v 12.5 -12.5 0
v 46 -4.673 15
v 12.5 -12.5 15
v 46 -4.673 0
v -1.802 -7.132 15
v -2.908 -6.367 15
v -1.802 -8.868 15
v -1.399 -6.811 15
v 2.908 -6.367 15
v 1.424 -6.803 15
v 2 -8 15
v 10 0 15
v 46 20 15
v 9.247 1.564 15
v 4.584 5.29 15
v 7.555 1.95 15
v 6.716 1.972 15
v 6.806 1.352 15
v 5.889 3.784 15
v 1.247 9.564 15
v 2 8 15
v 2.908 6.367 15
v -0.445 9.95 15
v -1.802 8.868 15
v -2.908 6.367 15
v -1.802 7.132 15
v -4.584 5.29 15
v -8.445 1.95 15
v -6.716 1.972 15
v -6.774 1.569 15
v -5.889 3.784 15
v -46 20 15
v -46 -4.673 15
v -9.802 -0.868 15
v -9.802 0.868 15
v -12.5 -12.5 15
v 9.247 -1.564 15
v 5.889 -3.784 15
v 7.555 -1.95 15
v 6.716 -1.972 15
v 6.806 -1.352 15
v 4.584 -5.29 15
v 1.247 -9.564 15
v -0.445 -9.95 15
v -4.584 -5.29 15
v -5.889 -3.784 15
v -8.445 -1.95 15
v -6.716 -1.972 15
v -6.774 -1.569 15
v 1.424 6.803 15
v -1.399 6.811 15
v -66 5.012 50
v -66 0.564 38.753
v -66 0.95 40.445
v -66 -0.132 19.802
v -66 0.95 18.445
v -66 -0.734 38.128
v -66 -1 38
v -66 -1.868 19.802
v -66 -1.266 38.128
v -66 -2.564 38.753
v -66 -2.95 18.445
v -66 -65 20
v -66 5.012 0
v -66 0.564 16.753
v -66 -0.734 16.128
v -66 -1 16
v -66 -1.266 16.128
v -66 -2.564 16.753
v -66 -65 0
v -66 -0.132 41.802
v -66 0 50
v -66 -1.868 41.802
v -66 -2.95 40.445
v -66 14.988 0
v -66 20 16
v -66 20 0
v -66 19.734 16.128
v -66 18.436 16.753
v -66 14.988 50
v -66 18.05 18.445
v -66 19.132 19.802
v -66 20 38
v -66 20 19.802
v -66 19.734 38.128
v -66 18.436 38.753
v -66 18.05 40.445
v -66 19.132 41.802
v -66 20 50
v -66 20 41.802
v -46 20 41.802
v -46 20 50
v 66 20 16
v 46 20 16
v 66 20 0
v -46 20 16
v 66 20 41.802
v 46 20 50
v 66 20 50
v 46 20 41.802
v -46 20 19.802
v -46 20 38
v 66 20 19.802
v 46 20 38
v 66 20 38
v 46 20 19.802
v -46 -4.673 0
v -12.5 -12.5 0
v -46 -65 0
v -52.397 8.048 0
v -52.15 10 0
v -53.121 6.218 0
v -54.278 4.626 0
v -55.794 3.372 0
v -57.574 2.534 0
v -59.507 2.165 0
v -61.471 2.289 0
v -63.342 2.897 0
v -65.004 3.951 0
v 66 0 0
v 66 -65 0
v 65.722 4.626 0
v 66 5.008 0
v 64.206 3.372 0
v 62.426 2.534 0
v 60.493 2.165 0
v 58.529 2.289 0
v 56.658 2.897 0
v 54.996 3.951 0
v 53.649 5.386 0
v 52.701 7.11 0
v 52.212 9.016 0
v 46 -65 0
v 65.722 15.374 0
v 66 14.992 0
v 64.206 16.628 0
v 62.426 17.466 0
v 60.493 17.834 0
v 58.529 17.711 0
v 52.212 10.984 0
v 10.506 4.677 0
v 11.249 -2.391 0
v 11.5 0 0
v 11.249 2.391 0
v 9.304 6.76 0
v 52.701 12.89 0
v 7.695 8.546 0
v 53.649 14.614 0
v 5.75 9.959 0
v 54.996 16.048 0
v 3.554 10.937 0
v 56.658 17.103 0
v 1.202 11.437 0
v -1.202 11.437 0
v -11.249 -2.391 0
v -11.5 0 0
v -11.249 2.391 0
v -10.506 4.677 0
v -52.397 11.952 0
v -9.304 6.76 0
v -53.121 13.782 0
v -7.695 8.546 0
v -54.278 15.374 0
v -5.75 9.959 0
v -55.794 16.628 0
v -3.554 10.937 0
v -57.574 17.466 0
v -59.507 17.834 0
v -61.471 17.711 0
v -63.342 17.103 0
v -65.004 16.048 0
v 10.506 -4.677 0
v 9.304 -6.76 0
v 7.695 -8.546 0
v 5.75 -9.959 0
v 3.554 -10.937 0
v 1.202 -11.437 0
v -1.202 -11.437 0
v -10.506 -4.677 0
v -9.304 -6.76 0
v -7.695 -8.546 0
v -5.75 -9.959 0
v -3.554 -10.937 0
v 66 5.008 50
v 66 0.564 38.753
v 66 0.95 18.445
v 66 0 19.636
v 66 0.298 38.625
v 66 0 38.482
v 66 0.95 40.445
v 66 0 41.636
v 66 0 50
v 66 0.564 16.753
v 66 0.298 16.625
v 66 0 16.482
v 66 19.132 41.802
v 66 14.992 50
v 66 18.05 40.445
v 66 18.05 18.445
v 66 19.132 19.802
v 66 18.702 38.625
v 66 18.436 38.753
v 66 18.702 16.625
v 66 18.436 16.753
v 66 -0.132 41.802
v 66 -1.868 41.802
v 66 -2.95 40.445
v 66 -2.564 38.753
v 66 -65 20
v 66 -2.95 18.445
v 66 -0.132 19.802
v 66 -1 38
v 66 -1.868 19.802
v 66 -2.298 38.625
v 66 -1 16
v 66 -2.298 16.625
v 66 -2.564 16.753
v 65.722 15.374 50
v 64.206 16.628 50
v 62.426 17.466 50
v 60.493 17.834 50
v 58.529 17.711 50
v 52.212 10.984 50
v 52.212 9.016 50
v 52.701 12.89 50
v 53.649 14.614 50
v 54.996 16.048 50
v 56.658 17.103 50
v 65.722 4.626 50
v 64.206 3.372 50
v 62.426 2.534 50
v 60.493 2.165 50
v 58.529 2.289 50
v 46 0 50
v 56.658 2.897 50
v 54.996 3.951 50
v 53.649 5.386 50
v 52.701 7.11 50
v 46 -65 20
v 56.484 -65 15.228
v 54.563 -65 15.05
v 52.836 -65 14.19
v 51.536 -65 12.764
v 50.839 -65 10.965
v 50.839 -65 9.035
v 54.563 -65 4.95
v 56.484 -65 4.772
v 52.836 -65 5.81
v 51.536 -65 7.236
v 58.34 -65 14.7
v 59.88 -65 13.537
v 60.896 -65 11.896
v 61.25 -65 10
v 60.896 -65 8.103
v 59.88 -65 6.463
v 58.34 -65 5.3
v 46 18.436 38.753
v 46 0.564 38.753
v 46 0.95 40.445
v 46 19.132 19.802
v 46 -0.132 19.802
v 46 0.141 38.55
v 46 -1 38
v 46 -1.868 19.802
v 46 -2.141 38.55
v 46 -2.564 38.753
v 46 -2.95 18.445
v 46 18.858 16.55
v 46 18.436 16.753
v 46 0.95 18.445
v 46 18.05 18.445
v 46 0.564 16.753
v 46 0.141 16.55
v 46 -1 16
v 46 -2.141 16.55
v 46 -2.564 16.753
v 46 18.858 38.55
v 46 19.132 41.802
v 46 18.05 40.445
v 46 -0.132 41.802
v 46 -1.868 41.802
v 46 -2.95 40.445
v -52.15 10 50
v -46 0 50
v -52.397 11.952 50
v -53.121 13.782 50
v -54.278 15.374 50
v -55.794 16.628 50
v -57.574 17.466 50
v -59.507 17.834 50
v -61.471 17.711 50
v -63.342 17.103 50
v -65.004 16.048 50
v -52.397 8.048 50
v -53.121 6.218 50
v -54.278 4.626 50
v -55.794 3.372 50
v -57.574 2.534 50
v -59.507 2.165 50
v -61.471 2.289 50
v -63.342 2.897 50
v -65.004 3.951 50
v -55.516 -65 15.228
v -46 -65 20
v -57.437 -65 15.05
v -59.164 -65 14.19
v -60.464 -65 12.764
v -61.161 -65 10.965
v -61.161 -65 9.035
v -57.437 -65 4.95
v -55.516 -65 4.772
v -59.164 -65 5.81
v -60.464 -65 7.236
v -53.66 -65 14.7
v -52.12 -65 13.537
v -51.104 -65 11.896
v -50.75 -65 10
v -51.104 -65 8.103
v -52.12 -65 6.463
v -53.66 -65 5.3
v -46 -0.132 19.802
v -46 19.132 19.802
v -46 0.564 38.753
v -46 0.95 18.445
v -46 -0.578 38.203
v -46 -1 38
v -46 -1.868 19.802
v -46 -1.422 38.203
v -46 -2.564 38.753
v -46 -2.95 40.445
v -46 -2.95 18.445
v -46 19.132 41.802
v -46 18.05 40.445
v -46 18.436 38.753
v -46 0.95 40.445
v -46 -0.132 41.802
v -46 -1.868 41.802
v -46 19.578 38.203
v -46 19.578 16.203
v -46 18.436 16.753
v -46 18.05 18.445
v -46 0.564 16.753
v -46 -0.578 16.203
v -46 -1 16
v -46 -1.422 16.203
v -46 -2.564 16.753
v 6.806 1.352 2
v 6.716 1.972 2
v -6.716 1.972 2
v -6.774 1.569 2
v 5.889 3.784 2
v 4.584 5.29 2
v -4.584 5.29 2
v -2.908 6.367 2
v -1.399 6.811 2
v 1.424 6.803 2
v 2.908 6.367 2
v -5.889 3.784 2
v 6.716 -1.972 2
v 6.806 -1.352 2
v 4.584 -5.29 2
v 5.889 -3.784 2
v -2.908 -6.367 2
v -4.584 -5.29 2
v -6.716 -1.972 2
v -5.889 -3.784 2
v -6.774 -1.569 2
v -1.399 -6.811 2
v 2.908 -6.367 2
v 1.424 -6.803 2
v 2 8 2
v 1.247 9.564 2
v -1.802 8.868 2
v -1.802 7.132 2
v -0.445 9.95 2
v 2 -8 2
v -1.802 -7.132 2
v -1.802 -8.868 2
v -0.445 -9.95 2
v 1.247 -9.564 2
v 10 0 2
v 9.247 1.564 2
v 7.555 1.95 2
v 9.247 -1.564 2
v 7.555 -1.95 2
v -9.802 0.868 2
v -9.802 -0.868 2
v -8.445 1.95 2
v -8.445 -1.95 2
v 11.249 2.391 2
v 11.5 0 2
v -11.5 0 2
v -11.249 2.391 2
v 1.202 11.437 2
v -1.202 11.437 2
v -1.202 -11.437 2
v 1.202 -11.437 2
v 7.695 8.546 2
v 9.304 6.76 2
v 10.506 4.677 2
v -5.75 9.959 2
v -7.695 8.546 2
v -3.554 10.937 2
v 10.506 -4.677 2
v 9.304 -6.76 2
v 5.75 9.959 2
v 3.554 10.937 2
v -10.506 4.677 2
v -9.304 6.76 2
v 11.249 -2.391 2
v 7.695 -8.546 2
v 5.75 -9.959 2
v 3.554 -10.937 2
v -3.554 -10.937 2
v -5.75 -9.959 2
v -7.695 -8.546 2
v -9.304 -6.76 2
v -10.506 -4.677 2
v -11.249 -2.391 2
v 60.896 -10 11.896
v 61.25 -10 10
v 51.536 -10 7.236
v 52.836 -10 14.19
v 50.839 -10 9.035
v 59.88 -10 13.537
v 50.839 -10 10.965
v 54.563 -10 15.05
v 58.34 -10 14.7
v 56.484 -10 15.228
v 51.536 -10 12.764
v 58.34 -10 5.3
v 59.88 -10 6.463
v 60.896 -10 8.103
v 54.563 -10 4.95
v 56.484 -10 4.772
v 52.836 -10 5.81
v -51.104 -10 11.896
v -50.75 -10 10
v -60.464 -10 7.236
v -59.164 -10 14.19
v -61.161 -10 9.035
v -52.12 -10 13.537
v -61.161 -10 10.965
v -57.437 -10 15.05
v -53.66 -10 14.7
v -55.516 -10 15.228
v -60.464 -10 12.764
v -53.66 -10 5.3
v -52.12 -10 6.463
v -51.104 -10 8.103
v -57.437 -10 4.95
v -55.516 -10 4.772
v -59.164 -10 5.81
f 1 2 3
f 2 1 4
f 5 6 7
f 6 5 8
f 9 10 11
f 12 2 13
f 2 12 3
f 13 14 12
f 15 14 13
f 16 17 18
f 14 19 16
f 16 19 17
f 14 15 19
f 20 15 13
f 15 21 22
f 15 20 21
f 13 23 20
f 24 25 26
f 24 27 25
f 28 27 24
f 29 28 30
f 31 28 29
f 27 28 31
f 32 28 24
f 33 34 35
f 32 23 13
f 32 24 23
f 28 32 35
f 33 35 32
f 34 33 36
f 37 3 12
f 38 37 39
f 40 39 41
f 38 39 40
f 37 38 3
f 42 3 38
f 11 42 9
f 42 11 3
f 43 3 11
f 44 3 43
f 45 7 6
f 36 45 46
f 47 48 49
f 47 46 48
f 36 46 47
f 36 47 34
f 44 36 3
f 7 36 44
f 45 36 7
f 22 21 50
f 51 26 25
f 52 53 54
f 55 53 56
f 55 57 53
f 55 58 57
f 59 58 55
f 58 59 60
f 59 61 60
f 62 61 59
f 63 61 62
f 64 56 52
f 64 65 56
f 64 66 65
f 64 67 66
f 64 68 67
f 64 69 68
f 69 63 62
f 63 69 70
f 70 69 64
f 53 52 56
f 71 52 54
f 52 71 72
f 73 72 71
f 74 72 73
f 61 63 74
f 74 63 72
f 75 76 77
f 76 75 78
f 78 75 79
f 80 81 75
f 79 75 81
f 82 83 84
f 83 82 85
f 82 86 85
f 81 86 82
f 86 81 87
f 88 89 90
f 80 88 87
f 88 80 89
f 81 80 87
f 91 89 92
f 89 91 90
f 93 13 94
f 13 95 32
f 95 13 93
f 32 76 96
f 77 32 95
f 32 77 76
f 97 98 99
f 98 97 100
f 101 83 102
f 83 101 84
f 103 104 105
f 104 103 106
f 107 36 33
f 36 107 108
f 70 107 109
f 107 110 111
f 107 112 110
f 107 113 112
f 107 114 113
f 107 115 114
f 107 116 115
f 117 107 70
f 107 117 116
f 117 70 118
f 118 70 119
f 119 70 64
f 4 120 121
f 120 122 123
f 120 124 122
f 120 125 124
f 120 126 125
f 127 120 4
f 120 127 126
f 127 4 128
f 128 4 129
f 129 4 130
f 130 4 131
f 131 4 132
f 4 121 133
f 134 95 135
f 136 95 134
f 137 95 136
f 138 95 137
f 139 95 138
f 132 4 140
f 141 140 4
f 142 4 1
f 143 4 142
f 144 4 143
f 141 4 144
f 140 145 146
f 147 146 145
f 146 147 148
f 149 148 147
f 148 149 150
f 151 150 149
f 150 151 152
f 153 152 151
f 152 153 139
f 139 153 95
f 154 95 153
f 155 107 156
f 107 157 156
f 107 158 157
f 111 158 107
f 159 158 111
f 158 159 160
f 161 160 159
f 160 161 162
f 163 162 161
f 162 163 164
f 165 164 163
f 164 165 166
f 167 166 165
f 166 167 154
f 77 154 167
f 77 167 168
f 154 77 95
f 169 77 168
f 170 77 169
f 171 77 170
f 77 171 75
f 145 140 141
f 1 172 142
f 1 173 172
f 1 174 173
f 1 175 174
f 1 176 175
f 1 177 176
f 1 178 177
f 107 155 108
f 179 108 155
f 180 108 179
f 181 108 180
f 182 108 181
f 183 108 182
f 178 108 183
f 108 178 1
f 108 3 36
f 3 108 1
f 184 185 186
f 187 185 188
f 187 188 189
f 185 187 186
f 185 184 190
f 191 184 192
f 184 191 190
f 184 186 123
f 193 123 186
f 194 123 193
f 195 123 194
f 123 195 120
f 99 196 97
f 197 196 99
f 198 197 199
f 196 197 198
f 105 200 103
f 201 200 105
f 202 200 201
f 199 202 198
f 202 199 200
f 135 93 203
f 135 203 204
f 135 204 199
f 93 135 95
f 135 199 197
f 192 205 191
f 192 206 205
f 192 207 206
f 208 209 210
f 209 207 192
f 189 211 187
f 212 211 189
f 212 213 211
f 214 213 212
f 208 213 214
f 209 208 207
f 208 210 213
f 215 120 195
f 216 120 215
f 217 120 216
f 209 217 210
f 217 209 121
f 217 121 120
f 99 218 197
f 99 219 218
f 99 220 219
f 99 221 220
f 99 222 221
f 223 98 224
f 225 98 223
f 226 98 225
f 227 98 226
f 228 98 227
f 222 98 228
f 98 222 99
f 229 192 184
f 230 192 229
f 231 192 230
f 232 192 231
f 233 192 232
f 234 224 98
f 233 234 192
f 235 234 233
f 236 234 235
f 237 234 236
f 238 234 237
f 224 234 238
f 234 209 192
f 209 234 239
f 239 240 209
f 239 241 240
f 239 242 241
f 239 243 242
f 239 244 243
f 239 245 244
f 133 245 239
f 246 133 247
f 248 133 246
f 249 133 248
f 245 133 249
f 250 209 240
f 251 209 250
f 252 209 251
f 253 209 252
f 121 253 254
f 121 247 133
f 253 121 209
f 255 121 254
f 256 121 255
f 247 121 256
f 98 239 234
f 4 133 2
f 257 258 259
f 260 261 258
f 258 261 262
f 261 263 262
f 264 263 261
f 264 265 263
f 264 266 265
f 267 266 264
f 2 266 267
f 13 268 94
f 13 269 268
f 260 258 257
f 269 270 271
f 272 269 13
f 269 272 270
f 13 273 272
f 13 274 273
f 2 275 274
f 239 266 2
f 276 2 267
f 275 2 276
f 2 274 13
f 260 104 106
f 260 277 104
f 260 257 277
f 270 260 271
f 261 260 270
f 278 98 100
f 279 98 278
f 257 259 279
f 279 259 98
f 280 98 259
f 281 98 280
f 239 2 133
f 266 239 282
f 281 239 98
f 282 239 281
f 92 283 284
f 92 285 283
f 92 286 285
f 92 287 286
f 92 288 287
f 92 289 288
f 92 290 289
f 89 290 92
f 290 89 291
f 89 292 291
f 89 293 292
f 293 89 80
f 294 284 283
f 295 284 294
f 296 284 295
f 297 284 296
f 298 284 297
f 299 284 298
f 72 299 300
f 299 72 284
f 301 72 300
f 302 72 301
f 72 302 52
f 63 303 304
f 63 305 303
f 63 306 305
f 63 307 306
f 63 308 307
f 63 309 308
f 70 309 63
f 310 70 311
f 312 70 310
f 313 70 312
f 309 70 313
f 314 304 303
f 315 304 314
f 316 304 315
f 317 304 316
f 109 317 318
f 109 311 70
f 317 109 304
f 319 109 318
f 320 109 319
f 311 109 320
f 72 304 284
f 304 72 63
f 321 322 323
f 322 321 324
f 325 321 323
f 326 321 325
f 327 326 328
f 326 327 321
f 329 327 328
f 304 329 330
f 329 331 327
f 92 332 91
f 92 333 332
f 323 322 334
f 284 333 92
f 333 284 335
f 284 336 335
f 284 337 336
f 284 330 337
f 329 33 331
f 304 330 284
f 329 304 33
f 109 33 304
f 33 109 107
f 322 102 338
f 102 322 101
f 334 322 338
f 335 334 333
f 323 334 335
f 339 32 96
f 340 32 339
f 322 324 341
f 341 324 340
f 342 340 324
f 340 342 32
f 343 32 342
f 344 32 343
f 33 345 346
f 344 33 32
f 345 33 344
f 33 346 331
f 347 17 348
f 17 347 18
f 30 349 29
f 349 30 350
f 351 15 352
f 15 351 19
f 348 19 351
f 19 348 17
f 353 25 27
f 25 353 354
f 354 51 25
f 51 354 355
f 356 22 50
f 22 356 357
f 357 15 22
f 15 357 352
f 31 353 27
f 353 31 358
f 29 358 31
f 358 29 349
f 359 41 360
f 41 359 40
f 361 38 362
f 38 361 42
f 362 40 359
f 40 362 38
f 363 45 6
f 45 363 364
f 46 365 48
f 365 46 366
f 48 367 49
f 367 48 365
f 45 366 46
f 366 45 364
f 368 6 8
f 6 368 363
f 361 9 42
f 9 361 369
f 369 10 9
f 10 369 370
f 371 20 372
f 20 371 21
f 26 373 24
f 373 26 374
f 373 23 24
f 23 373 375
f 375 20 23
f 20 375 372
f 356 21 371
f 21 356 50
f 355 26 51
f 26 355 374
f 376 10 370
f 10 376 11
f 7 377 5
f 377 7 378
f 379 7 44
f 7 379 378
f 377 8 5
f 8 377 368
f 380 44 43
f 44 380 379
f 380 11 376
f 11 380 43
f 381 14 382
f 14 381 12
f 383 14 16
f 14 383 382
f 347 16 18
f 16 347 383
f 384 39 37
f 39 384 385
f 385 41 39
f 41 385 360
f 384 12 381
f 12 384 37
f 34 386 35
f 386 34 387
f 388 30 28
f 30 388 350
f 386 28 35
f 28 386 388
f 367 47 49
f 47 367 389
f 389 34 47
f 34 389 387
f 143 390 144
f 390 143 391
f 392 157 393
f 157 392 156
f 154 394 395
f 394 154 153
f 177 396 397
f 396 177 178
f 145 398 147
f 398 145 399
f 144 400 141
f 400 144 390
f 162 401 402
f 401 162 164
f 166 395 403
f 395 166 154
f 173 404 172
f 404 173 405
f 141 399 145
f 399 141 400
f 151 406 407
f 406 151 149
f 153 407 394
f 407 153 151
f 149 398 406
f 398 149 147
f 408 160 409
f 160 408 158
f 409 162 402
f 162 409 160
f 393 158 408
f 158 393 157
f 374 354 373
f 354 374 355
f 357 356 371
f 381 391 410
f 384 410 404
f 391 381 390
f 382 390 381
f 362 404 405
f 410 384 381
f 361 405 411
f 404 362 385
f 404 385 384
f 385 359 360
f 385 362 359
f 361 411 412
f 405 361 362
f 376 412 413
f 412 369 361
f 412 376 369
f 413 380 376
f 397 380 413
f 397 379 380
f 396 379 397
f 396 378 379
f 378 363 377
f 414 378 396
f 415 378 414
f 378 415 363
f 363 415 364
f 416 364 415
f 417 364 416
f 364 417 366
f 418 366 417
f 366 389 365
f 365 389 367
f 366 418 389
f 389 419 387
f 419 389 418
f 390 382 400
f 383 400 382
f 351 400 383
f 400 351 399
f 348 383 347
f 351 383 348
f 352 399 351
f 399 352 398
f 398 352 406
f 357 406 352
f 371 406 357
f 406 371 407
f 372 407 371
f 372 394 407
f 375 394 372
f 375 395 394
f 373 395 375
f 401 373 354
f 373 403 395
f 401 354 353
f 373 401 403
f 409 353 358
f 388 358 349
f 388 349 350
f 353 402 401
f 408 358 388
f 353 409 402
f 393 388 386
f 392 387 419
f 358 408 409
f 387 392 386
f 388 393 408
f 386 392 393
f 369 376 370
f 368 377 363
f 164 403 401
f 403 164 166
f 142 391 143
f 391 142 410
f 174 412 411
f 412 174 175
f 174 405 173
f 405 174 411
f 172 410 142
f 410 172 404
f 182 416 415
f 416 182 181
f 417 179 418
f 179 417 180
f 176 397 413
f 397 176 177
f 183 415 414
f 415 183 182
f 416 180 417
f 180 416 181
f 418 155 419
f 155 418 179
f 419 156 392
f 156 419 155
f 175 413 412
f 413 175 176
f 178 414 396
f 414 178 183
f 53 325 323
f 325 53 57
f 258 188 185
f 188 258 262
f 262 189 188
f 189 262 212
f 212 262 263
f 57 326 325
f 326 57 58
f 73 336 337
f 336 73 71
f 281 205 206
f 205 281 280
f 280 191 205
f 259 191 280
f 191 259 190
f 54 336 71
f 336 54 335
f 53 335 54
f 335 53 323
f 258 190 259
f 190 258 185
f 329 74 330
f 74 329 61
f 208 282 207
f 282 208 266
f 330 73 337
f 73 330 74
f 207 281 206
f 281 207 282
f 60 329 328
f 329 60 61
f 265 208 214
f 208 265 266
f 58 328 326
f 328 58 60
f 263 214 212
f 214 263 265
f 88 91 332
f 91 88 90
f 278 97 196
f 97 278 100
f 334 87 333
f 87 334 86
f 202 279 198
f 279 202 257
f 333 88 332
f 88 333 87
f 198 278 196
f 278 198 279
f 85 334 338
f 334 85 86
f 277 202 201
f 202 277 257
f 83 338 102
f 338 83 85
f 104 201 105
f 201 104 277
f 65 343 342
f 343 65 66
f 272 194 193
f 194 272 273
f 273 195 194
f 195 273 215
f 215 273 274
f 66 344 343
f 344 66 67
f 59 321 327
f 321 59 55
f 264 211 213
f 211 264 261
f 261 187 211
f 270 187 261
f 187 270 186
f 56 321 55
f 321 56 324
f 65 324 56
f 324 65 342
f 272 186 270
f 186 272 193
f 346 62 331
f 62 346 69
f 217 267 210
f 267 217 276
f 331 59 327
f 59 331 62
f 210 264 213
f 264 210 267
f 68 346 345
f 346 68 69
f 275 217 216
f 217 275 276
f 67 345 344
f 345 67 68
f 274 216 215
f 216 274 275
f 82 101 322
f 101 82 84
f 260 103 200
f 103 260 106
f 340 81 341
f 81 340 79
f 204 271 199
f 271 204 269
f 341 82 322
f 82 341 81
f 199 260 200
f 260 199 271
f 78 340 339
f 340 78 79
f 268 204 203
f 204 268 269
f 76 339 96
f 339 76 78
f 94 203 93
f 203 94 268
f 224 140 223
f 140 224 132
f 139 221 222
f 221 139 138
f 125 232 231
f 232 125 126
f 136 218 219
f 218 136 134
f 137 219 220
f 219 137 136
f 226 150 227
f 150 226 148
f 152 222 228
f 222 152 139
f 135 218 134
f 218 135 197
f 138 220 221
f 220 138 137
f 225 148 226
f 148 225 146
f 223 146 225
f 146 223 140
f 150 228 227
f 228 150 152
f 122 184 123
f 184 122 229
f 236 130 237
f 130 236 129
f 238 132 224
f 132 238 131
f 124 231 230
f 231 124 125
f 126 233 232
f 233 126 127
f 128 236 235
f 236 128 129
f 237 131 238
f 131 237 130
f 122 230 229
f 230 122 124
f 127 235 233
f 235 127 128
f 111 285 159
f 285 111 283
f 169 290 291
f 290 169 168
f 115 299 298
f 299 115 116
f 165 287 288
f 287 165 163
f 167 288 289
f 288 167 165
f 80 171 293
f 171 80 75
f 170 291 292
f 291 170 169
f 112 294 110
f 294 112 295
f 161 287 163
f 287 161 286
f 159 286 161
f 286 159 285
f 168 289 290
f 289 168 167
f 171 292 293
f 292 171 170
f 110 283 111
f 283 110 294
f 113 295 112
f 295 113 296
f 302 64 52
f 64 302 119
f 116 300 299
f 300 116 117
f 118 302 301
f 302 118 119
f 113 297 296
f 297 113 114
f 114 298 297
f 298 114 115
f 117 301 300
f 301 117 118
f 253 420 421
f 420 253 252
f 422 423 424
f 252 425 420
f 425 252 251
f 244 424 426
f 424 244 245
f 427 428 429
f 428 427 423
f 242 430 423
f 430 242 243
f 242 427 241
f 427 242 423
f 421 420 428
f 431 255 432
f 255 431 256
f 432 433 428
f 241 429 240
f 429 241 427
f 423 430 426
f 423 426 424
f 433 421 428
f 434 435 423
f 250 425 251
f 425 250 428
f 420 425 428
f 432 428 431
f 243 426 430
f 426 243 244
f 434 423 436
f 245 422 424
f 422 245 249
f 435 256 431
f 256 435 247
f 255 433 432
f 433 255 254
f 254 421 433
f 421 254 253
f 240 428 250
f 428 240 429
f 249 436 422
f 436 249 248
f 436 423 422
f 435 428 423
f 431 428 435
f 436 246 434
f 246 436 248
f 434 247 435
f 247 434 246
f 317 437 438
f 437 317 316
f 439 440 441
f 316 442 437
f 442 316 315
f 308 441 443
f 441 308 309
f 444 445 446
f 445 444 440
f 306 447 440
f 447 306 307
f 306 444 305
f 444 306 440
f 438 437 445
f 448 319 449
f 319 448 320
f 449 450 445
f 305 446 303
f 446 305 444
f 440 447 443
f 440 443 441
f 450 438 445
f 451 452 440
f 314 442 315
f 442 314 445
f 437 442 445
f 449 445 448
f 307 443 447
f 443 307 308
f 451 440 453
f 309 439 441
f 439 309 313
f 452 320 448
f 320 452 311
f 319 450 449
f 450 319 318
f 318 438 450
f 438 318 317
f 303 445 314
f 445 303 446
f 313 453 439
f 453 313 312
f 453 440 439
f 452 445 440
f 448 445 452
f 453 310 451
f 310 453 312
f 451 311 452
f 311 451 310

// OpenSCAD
//translate([0,0,0])import("bandejaacme.stl");


module huecoacme(){
    cylinder(r=14/2,h=50);
    translate([0,8,0])cylinder(r=4/2,h=50);
    translate([0,-8,0])cylinder(r=4/2,h=50);
    translate([8,0,0])cylinder(r=4/2,h=50);
    translate([-8,0,0])cylinder(r=4/2,h=50);
    cylinder(r=23/2,h=20);
}
difference(){
union(){
altacme=15;
hull(){
translate([0,0,altacme/2])cube([25,25,altacme],center=true);
translate([60-4,10,altacme/2])cube([20,20,altacme],center=true);
translate([-60+4,10,altacme/2])cube([20,20,altacme],center=true);
}
hull(){
translate([60-4,10,50/2])cube([20,20,50],center=true);
translate([50+16,0,0])rotate([0,0,180])cube([20,65,20]);
}
hull(){
translate([-60+4,10,50/2])cube([20,20,50],center=true);
translate([-52+6,0,0])rotate([0,0,180])cube([20,65,20]);
}

}


    translate([0,0,-18])huecoacme();
    translate([60,10,-5])cylinder(r=15.7/2,h=60);
    translate([-60,10,-5])cylinder(r=15.7/2,h=60);
    translate([59-3,-10,10])rotate([90,0,0])cylinder(r=10.5/2,h=80);
    translate([-59+3,-10,10])rotate([90,0,0])cylinder(r=10.5/2,h=80);
translate([0,0,40]){
translate([0,-1,0])rotate([0,90,0])cylinder(r=2,h=200,center=true);
translate([0,20,0])rotate([0,90,0])cylinder(r=2,h=200,center=true);
}
translate([0,0,18]){
translate([0,-1,0])rotate([0,90,0])cylinder(r=2,h=200,center=true);
translate([0,20,0])rotate([0,90,0])cylinder(r=2,h=200,center=true);
}

}
